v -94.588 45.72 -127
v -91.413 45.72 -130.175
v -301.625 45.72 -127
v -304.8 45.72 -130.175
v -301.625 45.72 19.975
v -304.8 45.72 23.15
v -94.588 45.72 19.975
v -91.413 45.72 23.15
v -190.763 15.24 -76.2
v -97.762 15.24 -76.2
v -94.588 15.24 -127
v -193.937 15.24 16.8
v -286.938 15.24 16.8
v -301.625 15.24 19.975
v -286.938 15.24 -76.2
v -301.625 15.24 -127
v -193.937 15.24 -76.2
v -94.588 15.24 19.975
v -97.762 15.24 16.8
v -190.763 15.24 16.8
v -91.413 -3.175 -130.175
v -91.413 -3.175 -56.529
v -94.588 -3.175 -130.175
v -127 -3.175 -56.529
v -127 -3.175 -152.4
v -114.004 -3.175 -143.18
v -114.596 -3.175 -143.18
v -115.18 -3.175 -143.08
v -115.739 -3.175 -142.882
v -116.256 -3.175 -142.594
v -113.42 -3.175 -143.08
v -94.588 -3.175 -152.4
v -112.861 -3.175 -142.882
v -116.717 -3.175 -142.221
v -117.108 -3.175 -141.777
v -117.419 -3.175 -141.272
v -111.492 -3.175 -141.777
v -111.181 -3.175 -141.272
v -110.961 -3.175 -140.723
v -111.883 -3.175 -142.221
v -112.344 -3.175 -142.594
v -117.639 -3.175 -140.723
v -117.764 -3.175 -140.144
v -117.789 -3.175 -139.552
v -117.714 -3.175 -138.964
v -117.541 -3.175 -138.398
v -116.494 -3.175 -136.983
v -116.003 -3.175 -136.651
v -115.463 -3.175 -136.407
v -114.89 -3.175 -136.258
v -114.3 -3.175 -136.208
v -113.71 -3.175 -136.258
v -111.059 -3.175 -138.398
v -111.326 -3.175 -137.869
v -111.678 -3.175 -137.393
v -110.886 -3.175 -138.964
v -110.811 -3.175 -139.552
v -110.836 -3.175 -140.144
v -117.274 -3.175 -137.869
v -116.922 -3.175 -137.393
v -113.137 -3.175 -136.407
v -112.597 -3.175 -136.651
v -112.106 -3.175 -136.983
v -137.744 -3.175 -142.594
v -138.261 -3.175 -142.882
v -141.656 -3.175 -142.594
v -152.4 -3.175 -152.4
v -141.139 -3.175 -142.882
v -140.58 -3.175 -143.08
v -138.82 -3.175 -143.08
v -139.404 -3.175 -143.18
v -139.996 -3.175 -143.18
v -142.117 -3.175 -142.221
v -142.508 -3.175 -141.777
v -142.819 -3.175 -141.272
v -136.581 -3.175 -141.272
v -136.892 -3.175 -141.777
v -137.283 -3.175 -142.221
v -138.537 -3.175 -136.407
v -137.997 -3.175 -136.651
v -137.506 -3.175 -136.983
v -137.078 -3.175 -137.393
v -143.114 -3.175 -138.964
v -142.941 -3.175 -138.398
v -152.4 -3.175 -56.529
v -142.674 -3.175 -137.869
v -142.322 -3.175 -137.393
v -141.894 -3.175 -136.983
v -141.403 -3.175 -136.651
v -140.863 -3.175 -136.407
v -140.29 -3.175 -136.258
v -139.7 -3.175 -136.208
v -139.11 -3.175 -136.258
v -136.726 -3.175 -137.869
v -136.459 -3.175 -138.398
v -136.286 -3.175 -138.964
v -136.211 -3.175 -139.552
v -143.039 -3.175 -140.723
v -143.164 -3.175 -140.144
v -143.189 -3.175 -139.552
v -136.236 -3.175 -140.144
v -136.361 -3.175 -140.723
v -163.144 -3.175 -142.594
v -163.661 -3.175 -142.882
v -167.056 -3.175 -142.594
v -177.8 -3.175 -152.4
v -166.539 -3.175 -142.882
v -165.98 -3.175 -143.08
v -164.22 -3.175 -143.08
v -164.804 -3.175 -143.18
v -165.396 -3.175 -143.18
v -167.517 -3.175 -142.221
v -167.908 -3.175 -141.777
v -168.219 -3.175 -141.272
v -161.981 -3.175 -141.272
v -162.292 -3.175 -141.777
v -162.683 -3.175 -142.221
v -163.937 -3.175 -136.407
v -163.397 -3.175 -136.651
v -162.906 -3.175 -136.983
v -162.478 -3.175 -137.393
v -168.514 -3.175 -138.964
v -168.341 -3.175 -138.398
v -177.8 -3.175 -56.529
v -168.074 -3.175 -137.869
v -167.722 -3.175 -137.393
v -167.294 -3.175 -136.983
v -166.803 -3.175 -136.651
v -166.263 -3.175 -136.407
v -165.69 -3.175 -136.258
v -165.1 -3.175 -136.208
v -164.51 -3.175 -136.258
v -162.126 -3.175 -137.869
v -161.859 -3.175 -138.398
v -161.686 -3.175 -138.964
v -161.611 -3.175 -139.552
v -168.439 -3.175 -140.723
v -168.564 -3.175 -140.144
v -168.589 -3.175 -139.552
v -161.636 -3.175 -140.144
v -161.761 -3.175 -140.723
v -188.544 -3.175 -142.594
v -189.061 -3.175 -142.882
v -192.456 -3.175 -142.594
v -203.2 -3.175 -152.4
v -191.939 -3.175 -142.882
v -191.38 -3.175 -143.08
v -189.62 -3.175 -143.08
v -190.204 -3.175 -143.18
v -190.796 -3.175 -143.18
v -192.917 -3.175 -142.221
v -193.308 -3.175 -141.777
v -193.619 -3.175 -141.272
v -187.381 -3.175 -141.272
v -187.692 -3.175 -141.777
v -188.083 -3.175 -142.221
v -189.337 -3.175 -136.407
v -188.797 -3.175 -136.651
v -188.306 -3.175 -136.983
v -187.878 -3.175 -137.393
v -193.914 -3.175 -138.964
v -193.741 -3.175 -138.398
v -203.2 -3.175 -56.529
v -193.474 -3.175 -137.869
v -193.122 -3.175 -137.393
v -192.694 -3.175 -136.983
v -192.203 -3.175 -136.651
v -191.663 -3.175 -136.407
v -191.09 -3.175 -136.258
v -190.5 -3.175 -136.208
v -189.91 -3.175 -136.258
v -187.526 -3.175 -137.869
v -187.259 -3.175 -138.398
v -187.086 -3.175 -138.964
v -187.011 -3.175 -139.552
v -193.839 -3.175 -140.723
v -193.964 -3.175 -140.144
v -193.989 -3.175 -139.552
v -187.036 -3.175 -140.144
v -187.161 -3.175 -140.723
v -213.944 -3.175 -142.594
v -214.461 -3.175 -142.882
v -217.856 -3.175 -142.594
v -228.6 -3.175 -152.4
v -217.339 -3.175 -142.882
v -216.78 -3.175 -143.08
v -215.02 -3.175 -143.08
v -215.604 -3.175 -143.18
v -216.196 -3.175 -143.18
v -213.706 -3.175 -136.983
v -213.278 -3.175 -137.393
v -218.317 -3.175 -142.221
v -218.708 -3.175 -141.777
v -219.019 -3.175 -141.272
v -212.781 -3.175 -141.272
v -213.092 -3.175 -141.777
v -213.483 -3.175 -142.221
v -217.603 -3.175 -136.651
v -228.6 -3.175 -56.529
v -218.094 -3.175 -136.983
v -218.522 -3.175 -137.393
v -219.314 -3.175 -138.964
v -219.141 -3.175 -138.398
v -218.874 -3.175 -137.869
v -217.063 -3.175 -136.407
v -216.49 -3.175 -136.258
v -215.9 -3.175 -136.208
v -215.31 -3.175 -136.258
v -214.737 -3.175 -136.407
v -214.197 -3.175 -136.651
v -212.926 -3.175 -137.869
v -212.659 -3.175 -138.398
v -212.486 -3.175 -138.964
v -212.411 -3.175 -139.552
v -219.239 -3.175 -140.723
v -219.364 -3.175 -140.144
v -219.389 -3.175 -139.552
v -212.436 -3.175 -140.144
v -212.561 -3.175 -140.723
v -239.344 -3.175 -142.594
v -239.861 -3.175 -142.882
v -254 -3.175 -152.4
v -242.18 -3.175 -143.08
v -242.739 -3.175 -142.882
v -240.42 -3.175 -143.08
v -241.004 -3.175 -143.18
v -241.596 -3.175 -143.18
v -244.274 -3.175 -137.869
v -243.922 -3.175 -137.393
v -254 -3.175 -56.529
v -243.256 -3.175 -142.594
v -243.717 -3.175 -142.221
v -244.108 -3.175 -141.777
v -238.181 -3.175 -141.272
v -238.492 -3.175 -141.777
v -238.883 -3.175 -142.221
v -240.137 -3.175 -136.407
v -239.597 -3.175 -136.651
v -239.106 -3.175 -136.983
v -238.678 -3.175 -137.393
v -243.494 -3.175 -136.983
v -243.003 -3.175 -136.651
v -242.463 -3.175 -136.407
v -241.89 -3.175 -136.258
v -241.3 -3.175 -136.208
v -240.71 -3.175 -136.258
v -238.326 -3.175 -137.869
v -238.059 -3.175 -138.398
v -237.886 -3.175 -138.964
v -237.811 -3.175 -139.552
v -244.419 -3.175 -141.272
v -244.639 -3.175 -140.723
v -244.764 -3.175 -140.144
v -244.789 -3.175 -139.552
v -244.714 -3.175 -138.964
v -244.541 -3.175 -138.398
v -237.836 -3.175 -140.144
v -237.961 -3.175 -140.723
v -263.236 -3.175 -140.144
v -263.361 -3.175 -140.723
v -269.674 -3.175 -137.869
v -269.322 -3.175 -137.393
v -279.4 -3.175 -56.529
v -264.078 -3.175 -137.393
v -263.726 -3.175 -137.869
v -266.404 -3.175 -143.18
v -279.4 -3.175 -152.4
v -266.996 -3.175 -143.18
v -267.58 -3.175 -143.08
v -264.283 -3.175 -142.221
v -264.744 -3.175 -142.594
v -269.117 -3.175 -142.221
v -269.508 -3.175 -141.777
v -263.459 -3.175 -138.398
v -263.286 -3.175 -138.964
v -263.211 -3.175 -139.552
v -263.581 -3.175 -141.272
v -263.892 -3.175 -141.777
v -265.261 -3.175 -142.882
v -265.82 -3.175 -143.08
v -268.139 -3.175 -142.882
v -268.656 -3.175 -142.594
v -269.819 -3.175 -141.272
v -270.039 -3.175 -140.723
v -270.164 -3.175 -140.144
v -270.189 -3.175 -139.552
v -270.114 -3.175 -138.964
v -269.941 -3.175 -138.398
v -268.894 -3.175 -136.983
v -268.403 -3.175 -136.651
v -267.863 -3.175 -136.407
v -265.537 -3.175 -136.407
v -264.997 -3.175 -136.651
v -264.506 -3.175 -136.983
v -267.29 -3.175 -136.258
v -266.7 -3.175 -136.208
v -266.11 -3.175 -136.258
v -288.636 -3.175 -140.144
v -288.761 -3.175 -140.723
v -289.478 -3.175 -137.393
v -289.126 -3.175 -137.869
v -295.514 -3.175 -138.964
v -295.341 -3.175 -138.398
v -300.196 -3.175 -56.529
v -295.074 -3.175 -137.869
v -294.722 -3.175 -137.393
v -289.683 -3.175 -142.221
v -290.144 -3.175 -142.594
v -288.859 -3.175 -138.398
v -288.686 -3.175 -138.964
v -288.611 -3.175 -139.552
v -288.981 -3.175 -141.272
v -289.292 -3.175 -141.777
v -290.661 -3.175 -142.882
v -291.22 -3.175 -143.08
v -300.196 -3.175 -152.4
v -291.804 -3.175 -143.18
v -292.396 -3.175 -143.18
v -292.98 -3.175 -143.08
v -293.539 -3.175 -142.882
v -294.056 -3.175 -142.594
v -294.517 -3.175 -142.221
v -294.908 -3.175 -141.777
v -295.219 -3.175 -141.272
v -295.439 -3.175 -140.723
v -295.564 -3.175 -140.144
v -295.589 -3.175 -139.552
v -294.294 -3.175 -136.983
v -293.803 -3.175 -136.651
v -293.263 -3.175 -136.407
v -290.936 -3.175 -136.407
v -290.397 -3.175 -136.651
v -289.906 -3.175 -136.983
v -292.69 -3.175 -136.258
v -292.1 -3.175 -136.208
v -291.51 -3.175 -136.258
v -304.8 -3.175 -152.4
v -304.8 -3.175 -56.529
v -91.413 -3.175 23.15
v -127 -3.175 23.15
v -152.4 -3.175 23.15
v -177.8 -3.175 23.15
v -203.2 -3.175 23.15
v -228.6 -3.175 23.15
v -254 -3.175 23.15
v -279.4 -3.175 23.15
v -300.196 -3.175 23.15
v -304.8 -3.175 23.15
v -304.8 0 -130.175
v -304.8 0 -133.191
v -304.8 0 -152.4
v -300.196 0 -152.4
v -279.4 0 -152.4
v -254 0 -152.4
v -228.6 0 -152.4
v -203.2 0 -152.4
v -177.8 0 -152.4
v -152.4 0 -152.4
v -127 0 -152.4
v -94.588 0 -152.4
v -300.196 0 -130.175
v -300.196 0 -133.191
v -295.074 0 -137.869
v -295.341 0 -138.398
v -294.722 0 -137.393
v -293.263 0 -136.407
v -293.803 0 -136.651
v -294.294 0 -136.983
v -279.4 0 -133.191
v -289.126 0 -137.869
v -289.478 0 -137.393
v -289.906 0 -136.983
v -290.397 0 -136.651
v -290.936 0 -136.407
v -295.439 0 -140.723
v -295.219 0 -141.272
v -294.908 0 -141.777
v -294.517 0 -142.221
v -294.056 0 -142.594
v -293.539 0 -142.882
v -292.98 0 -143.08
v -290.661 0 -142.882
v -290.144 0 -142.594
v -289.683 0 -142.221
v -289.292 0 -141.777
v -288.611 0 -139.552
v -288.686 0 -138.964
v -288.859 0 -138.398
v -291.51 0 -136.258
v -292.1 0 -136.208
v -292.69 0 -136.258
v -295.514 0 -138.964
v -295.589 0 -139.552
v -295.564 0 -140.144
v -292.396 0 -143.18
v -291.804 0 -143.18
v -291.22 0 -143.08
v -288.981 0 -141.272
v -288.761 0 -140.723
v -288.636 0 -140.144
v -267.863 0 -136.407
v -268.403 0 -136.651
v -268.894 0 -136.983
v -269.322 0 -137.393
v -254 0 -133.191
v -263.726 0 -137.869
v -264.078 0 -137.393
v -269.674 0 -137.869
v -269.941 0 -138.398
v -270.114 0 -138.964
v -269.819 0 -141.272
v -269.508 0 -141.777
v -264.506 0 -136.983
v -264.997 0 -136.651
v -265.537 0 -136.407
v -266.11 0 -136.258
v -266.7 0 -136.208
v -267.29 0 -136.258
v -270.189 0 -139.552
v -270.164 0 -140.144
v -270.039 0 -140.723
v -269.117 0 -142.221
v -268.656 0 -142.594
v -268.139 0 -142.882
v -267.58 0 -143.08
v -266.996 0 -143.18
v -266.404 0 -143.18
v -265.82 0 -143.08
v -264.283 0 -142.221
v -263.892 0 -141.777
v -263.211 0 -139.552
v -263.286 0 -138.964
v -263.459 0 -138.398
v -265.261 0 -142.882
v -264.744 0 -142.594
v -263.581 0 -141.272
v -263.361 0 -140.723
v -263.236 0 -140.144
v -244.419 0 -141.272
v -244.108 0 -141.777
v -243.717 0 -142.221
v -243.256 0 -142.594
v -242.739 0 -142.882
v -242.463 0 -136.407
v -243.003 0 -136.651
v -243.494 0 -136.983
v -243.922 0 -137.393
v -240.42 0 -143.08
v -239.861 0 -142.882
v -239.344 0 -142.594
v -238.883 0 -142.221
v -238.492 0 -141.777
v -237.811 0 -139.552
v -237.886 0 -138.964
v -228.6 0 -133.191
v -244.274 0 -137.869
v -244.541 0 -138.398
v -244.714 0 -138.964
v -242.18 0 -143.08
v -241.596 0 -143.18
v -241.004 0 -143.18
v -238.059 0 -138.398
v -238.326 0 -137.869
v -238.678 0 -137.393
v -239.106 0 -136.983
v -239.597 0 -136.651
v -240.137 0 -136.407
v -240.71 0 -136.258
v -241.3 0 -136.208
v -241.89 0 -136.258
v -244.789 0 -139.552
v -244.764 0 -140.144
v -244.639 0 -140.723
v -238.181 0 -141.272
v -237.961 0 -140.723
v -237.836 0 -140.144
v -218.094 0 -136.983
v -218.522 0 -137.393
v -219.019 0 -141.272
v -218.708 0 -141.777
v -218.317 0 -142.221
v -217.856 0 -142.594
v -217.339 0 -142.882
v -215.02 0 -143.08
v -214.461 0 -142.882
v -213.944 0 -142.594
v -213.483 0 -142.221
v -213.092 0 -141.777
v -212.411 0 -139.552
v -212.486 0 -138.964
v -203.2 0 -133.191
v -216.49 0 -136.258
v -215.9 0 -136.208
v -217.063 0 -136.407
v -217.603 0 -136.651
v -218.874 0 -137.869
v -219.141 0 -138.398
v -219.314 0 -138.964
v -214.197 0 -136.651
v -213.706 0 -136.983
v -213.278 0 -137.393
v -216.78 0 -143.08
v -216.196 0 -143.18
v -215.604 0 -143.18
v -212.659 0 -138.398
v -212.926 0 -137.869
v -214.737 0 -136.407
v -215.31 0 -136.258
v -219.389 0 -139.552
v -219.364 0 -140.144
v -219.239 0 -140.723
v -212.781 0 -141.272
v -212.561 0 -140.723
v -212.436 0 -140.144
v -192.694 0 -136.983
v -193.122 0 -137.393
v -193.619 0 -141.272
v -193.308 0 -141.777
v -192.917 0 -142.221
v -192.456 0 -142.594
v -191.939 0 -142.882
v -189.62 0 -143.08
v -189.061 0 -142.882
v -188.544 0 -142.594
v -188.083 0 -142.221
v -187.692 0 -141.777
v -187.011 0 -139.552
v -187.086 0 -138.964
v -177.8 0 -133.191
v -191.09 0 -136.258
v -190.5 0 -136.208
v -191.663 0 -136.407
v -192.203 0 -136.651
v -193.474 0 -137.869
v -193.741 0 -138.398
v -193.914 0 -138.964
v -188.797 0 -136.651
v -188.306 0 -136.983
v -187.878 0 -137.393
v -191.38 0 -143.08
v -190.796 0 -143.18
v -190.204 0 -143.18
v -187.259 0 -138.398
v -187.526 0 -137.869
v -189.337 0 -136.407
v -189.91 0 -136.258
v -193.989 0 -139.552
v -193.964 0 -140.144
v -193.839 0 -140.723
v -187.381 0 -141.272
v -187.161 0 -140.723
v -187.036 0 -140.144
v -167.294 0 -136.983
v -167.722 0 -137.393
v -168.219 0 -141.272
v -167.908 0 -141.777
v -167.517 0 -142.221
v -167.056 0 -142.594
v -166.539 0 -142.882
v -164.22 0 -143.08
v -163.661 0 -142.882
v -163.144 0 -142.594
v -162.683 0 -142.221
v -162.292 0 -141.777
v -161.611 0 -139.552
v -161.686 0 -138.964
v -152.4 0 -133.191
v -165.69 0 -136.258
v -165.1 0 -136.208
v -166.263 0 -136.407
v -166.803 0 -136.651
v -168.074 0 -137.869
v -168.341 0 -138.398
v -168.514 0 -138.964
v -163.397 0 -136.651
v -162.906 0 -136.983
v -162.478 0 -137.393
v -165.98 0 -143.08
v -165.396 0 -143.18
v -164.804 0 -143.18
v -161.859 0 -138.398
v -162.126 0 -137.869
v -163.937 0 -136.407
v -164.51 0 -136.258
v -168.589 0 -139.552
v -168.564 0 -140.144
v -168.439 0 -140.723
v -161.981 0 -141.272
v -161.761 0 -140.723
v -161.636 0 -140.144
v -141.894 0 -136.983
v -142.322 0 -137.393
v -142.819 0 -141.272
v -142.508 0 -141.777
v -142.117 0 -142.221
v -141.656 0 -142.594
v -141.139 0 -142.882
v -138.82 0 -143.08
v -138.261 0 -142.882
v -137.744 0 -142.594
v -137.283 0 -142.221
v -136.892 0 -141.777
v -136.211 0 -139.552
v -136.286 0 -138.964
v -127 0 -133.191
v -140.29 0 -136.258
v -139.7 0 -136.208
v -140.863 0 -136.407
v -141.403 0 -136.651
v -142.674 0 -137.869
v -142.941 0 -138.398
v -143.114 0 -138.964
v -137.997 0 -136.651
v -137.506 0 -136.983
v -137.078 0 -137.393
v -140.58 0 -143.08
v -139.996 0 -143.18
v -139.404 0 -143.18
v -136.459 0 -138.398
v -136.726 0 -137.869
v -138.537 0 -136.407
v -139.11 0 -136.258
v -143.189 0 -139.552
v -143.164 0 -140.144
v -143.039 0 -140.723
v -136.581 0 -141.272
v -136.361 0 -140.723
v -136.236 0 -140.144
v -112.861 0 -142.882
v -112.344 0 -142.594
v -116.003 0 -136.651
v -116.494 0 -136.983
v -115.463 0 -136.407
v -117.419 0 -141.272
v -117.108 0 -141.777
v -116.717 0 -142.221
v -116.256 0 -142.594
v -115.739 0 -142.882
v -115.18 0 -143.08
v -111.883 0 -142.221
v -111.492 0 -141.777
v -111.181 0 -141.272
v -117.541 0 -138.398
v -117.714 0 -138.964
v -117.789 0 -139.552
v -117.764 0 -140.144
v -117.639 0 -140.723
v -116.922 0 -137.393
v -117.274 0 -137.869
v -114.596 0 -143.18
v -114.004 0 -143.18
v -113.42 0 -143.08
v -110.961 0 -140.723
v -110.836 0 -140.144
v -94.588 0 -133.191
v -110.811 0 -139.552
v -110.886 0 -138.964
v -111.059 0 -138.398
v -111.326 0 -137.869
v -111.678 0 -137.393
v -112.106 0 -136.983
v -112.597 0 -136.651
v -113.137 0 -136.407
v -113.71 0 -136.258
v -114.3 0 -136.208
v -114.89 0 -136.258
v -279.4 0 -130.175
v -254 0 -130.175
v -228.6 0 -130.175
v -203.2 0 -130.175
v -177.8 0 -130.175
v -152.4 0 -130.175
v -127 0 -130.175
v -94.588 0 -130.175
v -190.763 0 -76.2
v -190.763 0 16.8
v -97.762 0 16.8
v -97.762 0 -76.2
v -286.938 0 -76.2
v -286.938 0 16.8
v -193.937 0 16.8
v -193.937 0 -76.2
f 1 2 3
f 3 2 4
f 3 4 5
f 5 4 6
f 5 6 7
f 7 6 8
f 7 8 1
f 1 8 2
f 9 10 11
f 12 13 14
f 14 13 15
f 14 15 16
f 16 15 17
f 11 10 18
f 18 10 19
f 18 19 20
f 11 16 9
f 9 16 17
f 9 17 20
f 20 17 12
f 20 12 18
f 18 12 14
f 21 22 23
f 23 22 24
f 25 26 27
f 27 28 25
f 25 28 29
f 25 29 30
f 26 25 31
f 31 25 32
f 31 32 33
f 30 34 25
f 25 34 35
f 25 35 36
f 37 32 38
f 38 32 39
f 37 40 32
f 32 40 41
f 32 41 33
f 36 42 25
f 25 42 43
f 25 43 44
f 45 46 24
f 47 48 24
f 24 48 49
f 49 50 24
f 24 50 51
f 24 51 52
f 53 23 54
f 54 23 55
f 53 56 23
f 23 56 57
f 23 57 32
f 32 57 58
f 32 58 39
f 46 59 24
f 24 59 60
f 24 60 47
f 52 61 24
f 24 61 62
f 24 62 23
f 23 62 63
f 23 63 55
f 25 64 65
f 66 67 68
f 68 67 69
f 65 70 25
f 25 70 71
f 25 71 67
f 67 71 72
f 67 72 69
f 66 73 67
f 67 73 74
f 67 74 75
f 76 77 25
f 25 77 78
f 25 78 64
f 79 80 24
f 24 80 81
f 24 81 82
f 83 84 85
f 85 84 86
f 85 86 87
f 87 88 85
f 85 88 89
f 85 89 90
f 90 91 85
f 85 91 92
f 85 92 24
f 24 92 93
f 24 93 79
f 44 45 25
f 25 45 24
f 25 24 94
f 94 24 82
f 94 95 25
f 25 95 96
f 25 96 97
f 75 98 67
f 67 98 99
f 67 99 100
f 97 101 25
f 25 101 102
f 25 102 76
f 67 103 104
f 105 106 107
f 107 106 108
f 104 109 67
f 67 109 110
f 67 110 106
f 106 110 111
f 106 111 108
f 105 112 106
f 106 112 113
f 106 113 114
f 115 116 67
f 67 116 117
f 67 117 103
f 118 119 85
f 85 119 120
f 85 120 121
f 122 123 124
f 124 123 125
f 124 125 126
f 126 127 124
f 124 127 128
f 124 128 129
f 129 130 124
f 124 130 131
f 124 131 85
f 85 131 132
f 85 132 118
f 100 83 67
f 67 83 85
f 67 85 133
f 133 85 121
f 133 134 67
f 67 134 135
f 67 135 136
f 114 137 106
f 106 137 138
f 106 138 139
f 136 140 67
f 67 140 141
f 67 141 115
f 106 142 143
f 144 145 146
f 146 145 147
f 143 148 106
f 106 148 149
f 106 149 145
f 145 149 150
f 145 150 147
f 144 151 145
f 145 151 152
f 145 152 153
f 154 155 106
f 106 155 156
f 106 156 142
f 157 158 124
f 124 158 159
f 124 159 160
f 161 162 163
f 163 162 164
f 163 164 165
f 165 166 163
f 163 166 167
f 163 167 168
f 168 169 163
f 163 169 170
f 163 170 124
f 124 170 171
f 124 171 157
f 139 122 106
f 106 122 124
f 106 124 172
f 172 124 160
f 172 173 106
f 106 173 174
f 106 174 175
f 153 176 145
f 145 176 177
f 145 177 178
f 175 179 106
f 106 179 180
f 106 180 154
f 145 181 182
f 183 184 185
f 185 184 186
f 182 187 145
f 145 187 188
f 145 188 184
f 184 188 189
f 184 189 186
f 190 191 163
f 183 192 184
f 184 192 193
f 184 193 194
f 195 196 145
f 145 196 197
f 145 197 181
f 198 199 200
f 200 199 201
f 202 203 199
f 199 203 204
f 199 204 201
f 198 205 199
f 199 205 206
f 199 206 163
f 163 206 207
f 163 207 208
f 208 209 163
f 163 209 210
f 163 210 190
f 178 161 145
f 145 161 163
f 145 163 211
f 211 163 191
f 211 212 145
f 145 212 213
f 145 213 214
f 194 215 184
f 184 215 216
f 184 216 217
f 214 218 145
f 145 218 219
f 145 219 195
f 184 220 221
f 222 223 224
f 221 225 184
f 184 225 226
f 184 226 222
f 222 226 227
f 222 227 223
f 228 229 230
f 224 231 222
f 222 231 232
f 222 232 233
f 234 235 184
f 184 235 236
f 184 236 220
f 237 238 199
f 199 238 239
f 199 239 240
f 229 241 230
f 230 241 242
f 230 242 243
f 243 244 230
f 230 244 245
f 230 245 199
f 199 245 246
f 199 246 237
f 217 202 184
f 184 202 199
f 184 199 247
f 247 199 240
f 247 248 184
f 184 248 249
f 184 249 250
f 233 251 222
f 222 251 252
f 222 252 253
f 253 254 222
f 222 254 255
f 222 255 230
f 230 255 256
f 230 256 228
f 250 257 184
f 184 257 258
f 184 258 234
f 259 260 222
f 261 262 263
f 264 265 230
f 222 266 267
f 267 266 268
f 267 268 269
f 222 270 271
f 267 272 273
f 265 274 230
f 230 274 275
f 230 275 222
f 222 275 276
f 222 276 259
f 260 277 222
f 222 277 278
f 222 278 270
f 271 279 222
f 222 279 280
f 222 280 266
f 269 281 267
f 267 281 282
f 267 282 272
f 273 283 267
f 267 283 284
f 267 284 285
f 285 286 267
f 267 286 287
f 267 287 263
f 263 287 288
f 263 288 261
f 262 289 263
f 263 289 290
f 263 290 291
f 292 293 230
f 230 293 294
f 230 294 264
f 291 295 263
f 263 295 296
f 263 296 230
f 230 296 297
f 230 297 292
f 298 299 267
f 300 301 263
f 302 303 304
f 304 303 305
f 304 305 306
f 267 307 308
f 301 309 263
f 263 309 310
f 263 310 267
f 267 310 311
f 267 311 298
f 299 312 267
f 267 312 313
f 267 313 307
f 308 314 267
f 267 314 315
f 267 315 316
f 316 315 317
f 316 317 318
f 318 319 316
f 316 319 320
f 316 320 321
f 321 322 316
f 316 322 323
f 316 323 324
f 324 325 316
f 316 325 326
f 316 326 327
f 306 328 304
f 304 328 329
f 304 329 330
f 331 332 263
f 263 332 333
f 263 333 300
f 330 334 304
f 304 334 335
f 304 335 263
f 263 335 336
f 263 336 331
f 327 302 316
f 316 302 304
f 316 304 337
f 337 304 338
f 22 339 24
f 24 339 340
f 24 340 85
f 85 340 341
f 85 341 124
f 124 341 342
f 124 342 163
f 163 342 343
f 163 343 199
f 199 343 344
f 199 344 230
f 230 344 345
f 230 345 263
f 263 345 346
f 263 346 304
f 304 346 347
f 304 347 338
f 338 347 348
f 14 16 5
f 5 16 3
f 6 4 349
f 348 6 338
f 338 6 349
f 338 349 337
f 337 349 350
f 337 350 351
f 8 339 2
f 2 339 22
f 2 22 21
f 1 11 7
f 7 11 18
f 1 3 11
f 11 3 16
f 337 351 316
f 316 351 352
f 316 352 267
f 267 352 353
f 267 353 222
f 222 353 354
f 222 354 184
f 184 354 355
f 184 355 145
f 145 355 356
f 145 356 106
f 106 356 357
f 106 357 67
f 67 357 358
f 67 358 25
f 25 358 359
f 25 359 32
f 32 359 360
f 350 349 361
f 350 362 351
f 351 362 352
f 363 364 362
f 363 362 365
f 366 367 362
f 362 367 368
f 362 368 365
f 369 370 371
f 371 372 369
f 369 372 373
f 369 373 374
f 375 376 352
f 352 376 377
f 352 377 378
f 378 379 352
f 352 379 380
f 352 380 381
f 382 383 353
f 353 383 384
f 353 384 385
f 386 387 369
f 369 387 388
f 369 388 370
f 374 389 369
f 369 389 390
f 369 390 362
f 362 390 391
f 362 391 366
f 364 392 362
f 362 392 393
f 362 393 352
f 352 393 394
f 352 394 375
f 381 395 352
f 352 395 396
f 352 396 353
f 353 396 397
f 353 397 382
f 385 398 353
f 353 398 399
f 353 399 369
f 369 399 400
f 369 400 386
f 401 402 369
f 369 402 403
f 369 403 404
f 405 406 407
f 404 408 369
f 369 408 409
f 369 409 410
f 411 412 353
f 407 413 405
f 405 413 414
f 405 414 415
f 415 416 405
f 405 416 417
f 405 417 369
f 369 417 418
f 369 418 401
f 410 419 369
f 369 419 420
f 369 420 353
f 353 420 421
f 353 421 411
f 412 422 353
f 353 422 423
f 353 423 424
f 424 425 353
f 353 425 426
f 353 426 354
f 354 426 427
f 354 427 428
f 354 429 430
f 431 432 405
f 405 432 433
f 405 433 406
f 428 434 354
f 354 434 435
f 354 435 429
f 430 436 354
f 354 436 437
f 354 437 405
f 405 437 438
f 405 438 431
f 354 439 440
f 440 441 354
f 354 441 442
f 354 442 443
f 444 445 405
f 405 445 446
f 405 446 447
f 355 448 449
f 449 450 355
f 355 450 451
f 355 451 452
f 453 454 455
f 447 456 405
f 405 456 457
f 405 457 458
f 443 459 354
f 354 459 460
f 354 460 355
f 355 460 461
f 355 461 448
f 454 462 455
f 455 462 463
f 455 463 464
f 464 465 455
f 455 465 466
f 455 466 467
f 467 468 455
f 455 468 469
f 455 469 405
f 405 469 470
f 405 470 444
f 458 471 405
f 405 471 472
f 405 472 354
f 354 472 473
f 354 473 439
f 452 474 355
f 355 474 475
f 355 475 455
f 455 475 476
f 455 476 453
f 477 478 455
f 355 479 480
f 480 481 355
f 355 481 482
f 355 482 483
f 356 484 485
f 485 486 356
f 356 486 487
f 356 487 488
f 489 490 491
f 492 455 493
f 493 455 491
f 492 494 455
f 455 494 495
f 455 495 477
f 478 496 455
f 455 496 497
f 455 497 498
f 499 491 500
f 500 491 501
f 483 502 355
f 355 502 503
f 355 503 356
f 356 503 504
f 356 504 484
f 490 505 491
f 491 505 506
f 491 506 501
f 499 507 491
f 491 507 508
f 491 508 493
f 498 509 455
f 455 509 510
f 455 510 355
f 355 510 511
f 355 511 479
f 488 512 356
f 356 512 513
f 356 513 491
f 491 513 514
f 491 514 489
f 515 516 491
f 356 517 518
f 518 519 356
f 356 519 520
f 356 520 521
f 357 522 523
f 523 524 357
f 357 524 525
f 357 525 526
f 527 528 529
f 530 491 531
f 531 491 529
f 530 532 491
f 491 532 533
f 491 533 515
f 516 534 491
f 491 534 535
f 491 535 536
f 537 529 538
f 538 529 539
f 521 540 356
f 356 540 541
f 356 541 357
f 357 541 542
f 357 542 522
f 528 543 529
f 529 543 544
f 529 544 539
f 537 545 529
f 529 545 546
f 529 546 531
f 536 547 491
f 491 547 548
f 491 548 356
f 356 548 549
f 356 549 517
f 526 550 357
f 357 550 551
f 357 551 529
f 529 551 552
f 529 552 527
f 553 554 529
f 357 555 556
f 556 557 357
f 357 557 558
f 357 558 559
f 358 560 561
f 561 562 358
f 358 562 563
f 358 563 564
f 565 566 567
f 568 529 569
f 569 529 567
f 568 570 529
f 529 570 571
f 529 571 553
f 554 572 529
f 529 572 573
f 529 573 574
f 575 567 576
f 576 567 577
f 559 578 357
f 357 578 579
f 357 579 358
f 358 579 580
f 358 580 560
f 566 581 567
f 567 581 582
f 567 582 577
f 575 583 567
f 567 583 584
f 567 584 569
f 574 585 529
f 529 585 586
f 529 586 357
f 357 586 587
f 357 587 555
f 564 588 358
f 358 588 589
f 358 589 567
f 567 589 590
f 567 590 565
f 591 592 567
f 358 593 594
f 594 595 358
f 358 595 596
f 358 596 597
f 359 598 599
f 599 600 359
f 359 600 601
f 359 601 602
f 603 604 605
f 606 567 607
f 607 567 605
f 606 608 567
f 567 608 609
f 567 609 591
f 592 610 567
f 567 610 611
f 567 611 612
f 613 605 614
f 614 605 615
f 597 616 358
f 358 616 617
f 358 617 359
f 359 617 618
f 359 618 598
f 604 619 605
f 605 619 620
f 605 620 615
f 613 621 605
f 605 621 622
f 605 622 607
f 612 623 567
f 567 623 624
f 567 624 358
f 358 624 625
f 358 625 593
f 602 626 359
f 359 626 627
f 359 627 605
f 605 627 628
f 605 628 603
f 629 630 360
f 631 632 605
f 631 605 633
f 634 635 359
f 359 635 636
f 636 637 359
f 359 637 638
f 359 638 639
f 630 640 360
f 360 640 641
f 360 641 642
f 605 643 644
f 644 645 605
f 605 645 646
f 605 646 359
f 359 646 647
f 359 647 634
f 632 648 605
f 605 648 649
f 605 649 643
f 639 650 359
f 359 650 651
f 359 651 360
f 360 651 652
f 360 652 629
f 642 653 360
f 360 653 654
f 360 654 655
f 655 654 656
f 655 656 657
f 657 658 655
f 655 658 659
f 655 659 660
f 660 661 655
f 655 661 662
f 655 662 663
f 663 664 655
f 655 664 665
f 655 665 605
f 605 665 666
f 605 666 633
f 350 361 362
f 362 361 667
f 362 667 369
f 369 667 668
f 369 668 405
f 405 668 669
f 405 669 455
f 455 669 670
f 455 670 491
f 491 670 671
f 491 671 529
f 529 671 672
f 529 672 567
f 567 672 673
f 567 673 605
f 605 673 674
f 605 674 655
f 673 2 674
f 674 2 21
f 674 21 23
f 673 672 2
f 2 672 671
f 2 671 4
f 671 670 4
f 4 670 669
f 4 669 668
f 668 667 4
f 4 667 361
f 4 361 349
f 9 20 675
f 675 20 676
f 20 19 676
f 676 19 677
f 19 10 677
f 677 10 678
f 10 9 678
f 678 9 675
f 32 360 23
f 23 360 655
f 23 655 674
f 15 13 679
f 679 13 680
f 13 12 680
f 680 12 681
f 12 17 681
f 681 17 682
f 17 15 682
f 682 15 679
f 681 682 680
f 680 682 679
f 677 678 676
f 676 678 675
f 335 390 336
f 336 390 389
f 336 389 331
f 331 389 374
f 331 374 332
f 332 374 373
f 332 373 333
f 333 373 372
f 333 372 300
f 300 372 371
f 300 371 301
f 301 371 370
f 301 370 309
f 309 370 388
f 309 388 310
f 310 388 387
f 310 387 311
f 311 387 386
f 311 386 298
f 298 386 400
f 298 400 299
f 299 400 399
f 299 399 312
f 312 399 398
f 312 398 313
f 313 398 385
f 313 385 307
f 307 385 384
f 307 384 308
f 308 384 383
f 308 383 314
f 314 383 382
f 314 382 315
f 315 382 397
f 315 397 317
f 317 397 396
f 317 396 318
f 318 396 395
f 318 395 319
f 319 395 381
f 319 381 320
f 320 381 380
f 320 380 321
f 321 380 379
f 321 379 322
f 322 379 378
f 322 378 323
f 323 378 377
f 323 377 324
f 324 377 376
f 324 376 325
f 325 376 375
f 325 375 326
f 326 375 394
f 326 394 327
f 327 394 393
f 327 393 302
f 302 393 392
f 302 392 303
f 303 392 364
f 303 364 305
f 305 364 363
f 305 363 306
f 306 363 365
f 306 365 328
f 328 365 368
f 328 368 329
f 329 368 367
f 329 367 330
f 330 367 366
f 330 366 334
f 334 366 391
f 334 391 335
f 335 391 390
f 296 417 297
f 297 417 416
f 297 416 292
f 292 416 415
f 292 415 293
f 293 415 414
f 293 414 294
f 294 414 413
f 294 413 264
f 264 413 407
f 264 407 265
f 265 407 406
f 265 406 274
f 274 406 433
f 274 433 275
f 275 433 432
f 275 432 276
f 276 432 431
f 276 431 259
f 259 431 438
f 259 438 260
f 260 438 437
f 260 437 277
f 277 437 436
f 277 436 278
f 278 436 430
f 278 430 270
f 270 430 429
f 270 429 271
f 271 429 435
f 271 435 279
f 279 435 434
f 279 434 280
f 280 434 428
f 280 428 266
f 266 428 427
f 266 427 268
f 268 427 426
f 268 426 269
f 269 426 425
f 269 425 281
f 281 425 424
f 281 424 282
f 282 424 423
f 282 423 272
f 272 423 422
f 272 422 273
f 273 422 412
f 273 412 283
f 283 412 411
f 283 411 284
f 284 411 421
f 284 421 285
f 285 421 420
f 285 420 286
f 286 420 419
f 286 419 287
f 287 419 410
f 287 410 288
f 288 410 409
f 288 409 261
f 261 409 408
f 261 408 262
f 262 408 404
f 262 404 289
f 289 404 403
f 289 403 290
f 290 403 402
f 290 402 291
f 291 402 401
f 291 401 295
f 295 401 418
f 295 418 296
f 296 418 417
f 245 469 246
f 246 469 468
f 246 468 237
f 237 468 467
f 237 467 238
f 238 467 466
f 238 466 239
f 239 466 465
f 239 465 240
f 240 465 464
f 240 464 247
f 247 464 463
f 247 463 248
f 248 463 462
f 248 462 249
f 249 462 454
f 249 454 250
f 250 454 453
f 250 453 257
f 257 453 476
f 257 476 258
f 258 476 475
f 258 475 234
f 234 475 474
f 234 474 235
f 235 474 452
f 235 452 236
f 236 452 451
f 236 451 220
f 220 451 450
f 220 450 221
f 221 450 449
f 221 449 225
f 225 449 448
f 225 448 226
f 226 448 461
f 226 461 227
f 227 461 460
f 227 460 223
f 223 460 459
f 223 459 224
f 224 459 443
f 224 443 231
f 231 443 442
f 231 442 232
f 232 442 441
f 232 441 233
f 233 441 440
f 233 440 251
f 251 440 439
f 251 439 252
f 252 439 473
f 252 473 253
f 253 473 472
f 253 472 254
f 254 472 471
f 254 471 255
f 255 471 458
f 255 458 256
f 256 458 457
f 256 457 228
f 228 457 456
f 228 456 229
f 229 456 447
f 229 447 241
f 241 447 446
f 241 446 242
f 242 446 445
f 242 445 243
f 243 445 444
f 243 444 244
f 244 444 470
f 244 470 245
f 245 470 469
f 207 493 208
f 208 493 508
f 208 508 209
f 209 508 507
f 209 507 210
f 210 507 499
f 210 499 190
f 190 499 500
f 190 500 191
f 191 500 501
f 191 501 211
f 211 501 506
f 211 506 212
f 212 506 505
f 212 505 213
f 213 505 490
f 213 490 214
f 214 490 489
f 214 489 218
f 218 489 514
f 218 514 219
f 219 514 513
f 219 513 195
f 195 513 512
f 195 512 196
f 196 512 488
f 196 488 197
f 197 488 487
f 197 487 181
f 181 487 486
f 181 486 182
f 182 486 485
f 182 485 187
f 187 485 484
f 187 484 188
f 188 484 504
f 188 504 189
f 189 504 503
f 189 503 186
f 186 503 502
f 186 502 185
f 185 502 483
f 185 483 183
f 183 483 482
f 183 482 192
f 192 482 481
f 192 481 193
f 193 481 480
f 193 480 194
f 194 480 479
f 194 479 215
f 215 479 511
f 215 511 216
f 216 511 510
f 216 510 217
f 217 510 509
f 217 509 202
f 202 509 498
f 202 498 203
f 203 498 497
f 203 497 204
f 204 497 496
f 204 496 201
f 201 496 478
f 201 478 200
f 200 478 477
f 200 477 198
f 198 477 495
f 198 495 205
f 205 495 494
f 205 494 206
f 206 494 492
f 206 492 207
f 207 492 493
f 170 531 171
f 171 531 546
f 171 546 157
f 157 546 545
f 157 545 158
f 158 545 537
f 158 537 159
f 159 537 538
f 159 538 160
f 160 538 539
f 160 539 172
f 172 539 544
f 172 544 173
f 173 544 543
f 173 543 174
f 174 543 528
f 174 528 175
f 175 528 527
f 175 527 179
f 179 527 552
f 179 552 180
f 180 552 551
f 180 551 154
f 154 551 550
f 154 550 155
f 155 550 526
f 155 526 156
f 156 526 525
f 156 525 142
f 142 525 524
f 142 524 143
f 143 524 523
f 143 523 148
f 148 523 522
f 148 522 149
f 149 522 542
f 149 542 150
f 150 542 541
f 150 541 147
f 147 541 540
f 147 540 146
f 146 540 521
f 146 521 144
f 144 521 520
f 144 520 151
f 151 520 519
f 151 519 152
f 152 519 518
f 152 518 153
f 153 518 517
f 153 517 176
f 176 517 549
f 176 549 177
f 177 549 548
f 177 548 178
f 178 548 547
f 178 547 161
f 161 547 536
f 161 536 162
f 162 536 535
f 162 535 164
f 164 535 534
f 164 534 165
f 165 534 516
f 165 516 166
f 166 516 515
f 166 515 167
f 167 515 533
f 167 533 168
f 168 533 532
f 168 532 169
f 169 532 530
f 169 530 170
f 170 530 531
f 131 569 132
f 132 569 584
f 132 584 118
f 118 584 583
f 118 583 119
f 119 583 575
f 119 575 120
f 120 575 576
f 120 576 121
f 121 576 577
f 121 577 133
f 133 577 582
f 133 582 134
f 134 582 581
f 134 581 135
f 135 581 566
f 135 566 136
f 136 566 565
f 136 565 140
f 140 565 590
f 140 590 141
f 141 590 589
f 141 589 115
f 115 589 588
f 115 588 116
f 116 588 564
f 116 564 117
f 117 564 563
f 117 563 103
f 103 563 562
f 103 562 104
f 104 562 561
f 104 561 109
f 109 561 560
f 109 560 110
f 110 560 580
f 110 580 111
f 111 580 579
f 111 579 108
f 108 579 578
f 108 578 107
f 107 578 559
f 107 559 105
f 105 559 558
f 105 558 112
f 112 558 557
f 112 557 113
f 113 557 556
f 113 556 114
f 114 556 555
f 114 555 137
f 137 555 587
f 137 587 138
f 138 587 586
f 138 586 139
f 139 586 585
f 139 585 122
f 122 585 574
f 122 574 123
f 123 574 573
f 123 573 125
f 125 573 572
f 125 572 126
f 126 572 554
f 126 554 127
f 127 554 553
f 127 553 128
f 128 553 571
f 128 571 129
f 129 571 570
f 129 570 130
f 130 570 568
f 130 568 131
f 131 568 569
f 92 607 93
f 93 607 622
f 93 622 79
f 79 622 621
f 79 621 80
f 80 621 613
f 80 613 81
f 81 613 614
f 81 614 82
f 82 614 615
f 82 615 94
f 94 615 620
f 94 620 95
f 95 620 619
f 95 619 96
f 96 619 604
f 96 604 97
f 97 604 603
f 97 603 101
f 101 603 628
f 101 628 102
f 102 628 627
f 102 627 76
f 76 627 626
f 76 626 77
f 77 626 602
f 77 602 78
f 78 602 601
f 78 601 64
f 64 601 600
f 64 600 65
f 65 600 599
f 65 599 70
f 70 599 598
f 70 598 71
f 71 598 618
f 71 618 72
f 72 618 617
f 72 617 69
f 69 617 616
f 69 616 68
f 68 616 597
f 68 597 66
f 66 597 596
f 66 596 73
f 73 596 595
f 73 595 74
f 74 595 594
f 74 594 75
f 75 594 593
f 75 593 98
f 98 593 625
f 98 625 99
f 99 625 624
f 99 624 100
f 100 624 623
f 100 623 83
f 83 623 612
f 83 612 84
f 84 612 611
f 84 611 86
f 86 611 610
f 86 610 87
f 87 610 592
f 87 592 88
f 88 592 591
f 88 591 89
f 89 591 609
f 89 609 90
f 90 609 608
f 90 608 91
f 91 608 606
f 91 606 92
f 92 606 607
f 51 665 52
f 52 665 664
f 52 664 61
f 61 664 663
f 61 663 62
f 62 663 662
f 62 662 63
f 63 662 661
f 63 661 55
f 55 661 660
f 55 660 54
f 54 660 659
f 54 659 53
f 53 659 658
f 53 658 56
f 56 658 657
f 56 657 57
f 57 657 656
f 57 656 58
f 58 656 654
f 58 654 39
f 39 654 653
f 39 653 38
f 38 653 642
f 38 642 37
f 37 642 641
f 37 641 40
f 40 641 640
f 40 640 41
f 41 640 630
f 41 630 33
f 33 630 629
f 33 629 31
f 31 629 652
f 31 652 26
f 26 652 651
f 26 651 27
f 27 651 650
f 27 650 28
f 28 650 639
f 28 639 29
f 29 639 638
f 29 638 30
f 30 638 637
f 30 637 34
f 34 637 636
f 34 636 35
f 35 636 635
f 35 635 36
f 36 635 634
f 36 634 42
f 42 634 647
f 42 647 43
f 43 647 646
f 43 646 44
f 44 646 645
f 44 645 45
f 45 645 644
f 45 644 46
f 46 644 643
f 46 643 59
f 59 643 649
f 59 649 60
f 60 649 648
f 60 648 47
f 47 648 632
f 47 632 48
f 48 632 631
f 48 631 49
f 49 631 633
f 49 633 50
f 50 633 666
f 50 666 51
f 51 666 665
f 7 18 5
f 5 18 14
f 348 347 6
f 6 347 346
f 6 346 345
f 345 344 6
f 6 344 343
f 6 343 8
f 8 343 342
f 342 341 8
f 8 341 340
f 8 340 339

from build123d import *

# Parameters (mm, degrees)
SKETCH1_W            = 609.6
SKETCH1_H            = 304.8
SKETCH1_W_2          = 93
SKETCH1_H_2          = 93
BOSS_EXTRUDE1_DEPTH  = 15.24
SKETCH2_W            = 609.6
SKETCH2_H            = 304.8
BOSS_EXTRUDE2_DEPTH  = 3.175
SKETCH3_W            = 609.6
SKETCH3_H            = 304.8
SKETCH3_W_2          = 603.25
SKETCH3_H_2          = 254
BOSS_EXTRUDE3_DEPTH  = 30.48
SKETCH4_OUTSIDE_W    = 748.262
SKETCH4_OUTSIDE_H    = 443.462
SKETCH4_OUTSIDE_W_2  = 609.6
SKETCH4_OUTSIDE_H_2  = 260.35
CUT_EXTRUDE1_DEPTH   = 45.72
SKETCH5_R            = 3.4925
CUT_EXTRUDE2_DEPTH   = 344.830071983
SKETCH6_W            = 327.140785269
SKETCH6_H            = 256.091806272
TEMPORARY_CUT_DEPTH  = 430.914472374
SKETCH7_W            = 260.35
SKETCH7_H            = 48.895
TEMPORARY_SIDE_DEPTH = 3.175
SKETCH8_W            = 381.398207811
SKETCH8_H            = 265.653299783
CUT_EXTRUDE3_DEPTH   = 354.138073599
SKETCH9_W            = 213.3875
SKETCH9_H            = 48.895
BOSS_EXTRUDE4_DEPTH  = 3.175


with BuildPart() as part:
    # Sketch1 → Boss-Extrude1 (new body)
    with BuildSketch(Plane(origin=(0, 0, 0), x_dir=(1, 0, 0), z_dir=(0, 1, 0))):
        Rectangle(SKETCH1_W, SKETCH1_H)
        with Locations((-48.0875, 29.7)):
            Rectangle(SKETCH1_W_2, SKETCH1_H_2, mode=Mode.SUBTRACT)
        with Locations((-144.2625, 29.7)):
            Rectangle(SKETCH1_W_2, SKETCH1_H_2, mode=Mode.SUBTRACT)
        with Locations((-144.2625, -66.475)):
            Rectangle(SKETCH1_W_2, SKETCH1_H_2, mode=Mode.SUBTRACT)
        with Locations((-48.0875, -66.475)):
            Rectangle(SKETCH1_W_2, SKETCH1_H_2, mode=Mode.SUBTRACT)
        with Locations((-240.4375, 29.7)):
            Rectangle(SKETCH1_W_2, SKETCH1_H_2, mode=Mode.SUBTRACT)
        with Locations((-240.4375, -66.475)):
            Rectangle(SKETCH1_W_2, SKETCH1_H_2, mode=Mode.SUBTRACT)
        with Locations((48.0875, 29.7)):
            Rectangle(SKETCH1_W_2, SKETCH1_H_2, mode=Mode.SUBTRACT)
        with Locations((48.0875, -66.475)):
            Rectangle(SKETCH1_W_2, SKETCH1_H_2, mode=Mode.SUBTRACT)
        with Locations((144.2625, 29.7)):
            Rectangle(SKETCH1_W_2, SKETCH1_H_2, mode=Mode.SUBTRACT)
        with Locations((144.2625, -66.475)):
            Rectangle(SKETCH1_W_2, SKETCH1_H_2, mode=Mode.SUBTRACT)
        with Locations((240.4375, 29.7)):
            Rectangle(SKETCH1_W_2, SKETCH1_H_2, mode=Mode.SUBTRACT)
        with Locations((240.4375, -66.475)):
            Rectangle(SKETCH1_W_2, SKETCH1_H_2, mode=Mode.SUBTRACT)
    extrude(amount=BOSS_EXTRUDE1_DEPTH)

    # Sketch2 → Boss-Extrude2 (add)
    with BuildSketch(Plane(origin=(0, 0, 0), x_dir=(-1, 0, 0), z_dir=(0, -1, 0))):
        Rectangle(SKETCH2_W, SKETCH2_H)
    extrude(amount=BOSS_EXTRUDE2_DEPTH)

    # Sketch3 → Boss-Extrude3 (add)
    with BuildSketch(Plane(origin=(0, 15.24, 0), x_dir=(1, 0, 0), z_dir=(0, 1, 0))):
        Rectangle(SKETCH3_W, SKETCH3_H)
        Rectangle(SKETCH3_W_2, SKETCH3_H_2, mode=Mode.SUBTRACT)
    extrude(amount=BOSS_EXTRUDE3_DEPTH)

    # Sketch4 outside → Cut-Extrude1 (cut)
    with BuildSketch(Plane(origin=(0, 45.72, 0), x_dir=(1, 0, 0), z_dir=(0, 1, 0))):
        Rectangle(SKETCH4_OUTSIDE_W, SKETCH4_OUTSIDE_H)
        Rectangle(SKETCH4_OUTSIDE_W_2, SKETCH4_OUTSIDE_H_2, mode=Mode.SUBTRACT)
    extrude(amount=-CUT_EXTRUDE1_DEPTH, mode=Mode.SUBTRACT)

    # Sketch5 → Cut-Extrude2 (cut, through all)
    with BuildSketch(Plane(origin=(0, 0, 0), x_dir=(1, 0, 0), z_dir=(0, 1, 0))):
        with Locations(Location((-292.1, -139.7, 0), (0, 0, 270))):
            Circle(SKETCH5_R)
        with Locations(Location((-266.7, -139.7, 0), (0, 0, 270))):
            Circle(SKETCH5_R)
        with Locations(Location((-241.3, -139.7, 0), (0, 0, 270))):
            Circle(SKETCH5_R)
        with Locations(Location((-215.9, -139.7, 0), (0, 0, 270))):
            Circle(SKETCH5_R)
        with Locations(Location((-190.5, -139.7, 0), (0, 0, 270))):
            Circle(SKETCH5_R)
        with Locations(Location((-165.1, -139.7, 0), (0, 0, 270))):
            Circle(SKETCH5_R)
        with Locations(Location((-139.7, -139.7, 0), (0, 0, 270))):
            Circle(SKETCH5_R)
        with Locations(Location((-114.3, -139.7, 0), (0, 0, 270))):
            Circle(SKETCH5_R)
        with Locations(Location((-88.9, -139.7, 0), (0, 0, 270))):
            Circle(SKETCH5_R)
        with Locations(Location((-63.5, -139.7, 0), (0, 0, 270))):
            Circle(SKETCH5_R)
        with Locations(Location((-38.1, -139.7, 0), (0, 0, 270))):
            Circle(SKETCH5_R)
        with Locations(Location((-12.7, -139.7, 0), (0, 0, 270))):
            Circle(SKETCH5_R)
        with Locations(Location((12.7, 139.7, 0), (0, 0, 270))):
            Circle(SKETCH5_R)
        with Locations(Location((38.1, 139.7, 0), (0, 0, 270))):
            Circle(SKETCH5_R)
        with Locations(Location((63.5, 139.7, 0), (0, 0, 270))):
            Circle(SKETCH5_R)
        with Locations(Location((88.9, 139.7, 0), (0, 0, 270))):
            Circle(SKETCH5_R)
        with Locations(Location((114.3, 139.7, 0), (0, 0, 270))):
            Circle(SKETCH5_R)
        with Locations(Location((139.7, 139.7, 0), (0, 0, 270))):
            Circle(SKETCH5_R)
        with Locations(Location((165.1, 139.7, 0), (0, 0, 270))):
            Circle(SKETCH5_R)
        with Locations(Location((190.5, 139.7, 0), (0, 0, 270))):
            Circle(SKETCH5_R)
        with Locations(Location((215.9, 139.7, 0), (0, 0, 270))):
            Circle(SKETCH5_R)
        with Locations(Location((241.3, 139.7, 0), (0, 0, 270))):
            Circle(SKETCH5_R)
        with Locations(Location((-292.1, 139.7, 0), (0, 0, 270))):
            Circle(SKETCH5_R)
        with Locations(Location((-266.7, 139.7, 0), (0, 0, 270))):
            Circle(SKETCH5_R)
        with Locations(Location((-241.3, 139.7, 0), (0, 0, 270))):
            Circle(SKETCH5_R)
        with Locations(Location((-215.9, 139.7, 0), (0, 0, 270))):
            Circle(SKETCH5_R)
        with Locations(Location((-190.5, 139.7, 0), (0, 0, 270))):
            Circle(SKETCH5_R)
        with Locations(Location((-165.1, 139.7, 0), (0, 0, 270))):
            Circle(SKETCH5_R)
        with Locations(Location((-139.7, 139.7, 0), (0, 0, 270))):
            Circle(SKETCH5_R)
        with Locations(Location((-114.3, 139.7, 0), (0, 0, 270))):
            Circle(SKETCH5_R)
        with Locations(Location((-88.9, 139.7, 0), (0, 0, 270))):
            Circle(SKETCH5_R)
        with Locations(Location((-63.5, 139.7, 0), (0, 0, 270))):
            Circle(SKETCH5_R)
        with Locations(Location((-38.1, 139.7, 0), (0, 0, 270))):
            Circle(SKETCH5_R)
        with Locations(Location((-12.7, 139.7, 0), (0, 0, 270))):
            Circle(SKETCH5_R)
        with Locations(Location((266.7, 139.7, 0), (0, 0, 270))):
            Circle(SKETCH5_R)
        with Locations(Location((292.1, 139.7, 0), (0, 0, 270))):
            Circle(SKETCH5_R)
        with Locations(Location((12.7, -139.7, 0), (0, 0, 270))):
            Circle(SKETCH5_R)
        with Locations(Location((38.1, -139.7, 0), (0, 0, 270))):
            Circle(SKETCH5_R)
        with Locations(Location((63.5, -139.7, 0), (0, 0, 270))):
            Circle(SKETCH5_R)
        with Locations(Location((88.9, -139.7, 0), (0, 0, 270))):
            Circle(SKETCH5_R)
        with Locations(Location((114.3, -139.7, 0), (0, 0, 270))):
            Circle(SKETCH5_R)
        with Locations(Location((139.7, -139.7, 0), (0, 0, 270))):
            Circle(SKETCH5_R)
        with Locations(Location((165.1, -139.7, 0), (0, 0, 270))):
            Circle(SKETCH5_R)
        with Locations(Location((190.5, -139.7, 0), (0, 0, 270))):
            Circle(SKETCH5_R)
        with Locations(Location((215.9, -139.7, 0), (0, 0, 270))):
            Circle(SKETCH5_R)
        with Locations(Location((241.3, -139.7, 0), (0, 0, 270))):
            Circle(SKETCH5_R)
        with Locations(Location((266.7, -139.7, 0), (0, 0, 270))):
            Circle(SKETCH5_R)
        with Locations(Location((292.1, -139.7, 0), (0, 0, 270))):
            Circle(SKETCH5_R)
    extrude(amount=-CUT_EXTRUDE2_DEPTH, mode=Mode.SUBTRACT)

    # Sketch6 → Temporary_Cut (cut, through all)
    with BuildSketch(Plane(origin=(-94.5875, 0, 0), x_dir=(0, 0, -1), z_dir=(1, 0, 0))):
        with Locations((-7.828616148, 44.910513642)):
            Rectangle(SKETCH6_W, SKETCH6_H)
    extrude(amount=TEMPORARY_CUT_DEPTH, mode=Mode.SUBTRACT)

    # Sketch7 → Temporary_Side (add)
    with BuildSketch(Plane(origin=(-94.5875, 0, 0), x_dir=(0, 0, -1), z_dir=(1, 0, 0))):
        with Locations((0, 21.2725)):
            Rectangle(SKETCH7_W, SKETCH7_H)
    extrude(amount=TEMPORARY_SIDE_DEPTH)

    # Sketch8 → Cut-Extrude3 (cut, through all)
    with BuildSketch(Plane.XY.offset(19.975)):
        with Locations((-174.977799194, 15.778240494)):
            Rectangle(SKETCH8_W, SKETCH8_H)
    extrude(amount=CUT_EXTRUDE3_DEPTH, mode=Mode.SUBTRACT)

    # Sketch9 → Boss-Extrude4 (add)
    with BuildSketch(Plane.XY.offset(19.975)):
        with Locations((-198.10625, 21.2725)):
            Rectangle(SKETCH9_W, SKETCH9_H)
    extrude(amount=BOSS_EXTRUDE4_DEPTH)


solid = part.part
